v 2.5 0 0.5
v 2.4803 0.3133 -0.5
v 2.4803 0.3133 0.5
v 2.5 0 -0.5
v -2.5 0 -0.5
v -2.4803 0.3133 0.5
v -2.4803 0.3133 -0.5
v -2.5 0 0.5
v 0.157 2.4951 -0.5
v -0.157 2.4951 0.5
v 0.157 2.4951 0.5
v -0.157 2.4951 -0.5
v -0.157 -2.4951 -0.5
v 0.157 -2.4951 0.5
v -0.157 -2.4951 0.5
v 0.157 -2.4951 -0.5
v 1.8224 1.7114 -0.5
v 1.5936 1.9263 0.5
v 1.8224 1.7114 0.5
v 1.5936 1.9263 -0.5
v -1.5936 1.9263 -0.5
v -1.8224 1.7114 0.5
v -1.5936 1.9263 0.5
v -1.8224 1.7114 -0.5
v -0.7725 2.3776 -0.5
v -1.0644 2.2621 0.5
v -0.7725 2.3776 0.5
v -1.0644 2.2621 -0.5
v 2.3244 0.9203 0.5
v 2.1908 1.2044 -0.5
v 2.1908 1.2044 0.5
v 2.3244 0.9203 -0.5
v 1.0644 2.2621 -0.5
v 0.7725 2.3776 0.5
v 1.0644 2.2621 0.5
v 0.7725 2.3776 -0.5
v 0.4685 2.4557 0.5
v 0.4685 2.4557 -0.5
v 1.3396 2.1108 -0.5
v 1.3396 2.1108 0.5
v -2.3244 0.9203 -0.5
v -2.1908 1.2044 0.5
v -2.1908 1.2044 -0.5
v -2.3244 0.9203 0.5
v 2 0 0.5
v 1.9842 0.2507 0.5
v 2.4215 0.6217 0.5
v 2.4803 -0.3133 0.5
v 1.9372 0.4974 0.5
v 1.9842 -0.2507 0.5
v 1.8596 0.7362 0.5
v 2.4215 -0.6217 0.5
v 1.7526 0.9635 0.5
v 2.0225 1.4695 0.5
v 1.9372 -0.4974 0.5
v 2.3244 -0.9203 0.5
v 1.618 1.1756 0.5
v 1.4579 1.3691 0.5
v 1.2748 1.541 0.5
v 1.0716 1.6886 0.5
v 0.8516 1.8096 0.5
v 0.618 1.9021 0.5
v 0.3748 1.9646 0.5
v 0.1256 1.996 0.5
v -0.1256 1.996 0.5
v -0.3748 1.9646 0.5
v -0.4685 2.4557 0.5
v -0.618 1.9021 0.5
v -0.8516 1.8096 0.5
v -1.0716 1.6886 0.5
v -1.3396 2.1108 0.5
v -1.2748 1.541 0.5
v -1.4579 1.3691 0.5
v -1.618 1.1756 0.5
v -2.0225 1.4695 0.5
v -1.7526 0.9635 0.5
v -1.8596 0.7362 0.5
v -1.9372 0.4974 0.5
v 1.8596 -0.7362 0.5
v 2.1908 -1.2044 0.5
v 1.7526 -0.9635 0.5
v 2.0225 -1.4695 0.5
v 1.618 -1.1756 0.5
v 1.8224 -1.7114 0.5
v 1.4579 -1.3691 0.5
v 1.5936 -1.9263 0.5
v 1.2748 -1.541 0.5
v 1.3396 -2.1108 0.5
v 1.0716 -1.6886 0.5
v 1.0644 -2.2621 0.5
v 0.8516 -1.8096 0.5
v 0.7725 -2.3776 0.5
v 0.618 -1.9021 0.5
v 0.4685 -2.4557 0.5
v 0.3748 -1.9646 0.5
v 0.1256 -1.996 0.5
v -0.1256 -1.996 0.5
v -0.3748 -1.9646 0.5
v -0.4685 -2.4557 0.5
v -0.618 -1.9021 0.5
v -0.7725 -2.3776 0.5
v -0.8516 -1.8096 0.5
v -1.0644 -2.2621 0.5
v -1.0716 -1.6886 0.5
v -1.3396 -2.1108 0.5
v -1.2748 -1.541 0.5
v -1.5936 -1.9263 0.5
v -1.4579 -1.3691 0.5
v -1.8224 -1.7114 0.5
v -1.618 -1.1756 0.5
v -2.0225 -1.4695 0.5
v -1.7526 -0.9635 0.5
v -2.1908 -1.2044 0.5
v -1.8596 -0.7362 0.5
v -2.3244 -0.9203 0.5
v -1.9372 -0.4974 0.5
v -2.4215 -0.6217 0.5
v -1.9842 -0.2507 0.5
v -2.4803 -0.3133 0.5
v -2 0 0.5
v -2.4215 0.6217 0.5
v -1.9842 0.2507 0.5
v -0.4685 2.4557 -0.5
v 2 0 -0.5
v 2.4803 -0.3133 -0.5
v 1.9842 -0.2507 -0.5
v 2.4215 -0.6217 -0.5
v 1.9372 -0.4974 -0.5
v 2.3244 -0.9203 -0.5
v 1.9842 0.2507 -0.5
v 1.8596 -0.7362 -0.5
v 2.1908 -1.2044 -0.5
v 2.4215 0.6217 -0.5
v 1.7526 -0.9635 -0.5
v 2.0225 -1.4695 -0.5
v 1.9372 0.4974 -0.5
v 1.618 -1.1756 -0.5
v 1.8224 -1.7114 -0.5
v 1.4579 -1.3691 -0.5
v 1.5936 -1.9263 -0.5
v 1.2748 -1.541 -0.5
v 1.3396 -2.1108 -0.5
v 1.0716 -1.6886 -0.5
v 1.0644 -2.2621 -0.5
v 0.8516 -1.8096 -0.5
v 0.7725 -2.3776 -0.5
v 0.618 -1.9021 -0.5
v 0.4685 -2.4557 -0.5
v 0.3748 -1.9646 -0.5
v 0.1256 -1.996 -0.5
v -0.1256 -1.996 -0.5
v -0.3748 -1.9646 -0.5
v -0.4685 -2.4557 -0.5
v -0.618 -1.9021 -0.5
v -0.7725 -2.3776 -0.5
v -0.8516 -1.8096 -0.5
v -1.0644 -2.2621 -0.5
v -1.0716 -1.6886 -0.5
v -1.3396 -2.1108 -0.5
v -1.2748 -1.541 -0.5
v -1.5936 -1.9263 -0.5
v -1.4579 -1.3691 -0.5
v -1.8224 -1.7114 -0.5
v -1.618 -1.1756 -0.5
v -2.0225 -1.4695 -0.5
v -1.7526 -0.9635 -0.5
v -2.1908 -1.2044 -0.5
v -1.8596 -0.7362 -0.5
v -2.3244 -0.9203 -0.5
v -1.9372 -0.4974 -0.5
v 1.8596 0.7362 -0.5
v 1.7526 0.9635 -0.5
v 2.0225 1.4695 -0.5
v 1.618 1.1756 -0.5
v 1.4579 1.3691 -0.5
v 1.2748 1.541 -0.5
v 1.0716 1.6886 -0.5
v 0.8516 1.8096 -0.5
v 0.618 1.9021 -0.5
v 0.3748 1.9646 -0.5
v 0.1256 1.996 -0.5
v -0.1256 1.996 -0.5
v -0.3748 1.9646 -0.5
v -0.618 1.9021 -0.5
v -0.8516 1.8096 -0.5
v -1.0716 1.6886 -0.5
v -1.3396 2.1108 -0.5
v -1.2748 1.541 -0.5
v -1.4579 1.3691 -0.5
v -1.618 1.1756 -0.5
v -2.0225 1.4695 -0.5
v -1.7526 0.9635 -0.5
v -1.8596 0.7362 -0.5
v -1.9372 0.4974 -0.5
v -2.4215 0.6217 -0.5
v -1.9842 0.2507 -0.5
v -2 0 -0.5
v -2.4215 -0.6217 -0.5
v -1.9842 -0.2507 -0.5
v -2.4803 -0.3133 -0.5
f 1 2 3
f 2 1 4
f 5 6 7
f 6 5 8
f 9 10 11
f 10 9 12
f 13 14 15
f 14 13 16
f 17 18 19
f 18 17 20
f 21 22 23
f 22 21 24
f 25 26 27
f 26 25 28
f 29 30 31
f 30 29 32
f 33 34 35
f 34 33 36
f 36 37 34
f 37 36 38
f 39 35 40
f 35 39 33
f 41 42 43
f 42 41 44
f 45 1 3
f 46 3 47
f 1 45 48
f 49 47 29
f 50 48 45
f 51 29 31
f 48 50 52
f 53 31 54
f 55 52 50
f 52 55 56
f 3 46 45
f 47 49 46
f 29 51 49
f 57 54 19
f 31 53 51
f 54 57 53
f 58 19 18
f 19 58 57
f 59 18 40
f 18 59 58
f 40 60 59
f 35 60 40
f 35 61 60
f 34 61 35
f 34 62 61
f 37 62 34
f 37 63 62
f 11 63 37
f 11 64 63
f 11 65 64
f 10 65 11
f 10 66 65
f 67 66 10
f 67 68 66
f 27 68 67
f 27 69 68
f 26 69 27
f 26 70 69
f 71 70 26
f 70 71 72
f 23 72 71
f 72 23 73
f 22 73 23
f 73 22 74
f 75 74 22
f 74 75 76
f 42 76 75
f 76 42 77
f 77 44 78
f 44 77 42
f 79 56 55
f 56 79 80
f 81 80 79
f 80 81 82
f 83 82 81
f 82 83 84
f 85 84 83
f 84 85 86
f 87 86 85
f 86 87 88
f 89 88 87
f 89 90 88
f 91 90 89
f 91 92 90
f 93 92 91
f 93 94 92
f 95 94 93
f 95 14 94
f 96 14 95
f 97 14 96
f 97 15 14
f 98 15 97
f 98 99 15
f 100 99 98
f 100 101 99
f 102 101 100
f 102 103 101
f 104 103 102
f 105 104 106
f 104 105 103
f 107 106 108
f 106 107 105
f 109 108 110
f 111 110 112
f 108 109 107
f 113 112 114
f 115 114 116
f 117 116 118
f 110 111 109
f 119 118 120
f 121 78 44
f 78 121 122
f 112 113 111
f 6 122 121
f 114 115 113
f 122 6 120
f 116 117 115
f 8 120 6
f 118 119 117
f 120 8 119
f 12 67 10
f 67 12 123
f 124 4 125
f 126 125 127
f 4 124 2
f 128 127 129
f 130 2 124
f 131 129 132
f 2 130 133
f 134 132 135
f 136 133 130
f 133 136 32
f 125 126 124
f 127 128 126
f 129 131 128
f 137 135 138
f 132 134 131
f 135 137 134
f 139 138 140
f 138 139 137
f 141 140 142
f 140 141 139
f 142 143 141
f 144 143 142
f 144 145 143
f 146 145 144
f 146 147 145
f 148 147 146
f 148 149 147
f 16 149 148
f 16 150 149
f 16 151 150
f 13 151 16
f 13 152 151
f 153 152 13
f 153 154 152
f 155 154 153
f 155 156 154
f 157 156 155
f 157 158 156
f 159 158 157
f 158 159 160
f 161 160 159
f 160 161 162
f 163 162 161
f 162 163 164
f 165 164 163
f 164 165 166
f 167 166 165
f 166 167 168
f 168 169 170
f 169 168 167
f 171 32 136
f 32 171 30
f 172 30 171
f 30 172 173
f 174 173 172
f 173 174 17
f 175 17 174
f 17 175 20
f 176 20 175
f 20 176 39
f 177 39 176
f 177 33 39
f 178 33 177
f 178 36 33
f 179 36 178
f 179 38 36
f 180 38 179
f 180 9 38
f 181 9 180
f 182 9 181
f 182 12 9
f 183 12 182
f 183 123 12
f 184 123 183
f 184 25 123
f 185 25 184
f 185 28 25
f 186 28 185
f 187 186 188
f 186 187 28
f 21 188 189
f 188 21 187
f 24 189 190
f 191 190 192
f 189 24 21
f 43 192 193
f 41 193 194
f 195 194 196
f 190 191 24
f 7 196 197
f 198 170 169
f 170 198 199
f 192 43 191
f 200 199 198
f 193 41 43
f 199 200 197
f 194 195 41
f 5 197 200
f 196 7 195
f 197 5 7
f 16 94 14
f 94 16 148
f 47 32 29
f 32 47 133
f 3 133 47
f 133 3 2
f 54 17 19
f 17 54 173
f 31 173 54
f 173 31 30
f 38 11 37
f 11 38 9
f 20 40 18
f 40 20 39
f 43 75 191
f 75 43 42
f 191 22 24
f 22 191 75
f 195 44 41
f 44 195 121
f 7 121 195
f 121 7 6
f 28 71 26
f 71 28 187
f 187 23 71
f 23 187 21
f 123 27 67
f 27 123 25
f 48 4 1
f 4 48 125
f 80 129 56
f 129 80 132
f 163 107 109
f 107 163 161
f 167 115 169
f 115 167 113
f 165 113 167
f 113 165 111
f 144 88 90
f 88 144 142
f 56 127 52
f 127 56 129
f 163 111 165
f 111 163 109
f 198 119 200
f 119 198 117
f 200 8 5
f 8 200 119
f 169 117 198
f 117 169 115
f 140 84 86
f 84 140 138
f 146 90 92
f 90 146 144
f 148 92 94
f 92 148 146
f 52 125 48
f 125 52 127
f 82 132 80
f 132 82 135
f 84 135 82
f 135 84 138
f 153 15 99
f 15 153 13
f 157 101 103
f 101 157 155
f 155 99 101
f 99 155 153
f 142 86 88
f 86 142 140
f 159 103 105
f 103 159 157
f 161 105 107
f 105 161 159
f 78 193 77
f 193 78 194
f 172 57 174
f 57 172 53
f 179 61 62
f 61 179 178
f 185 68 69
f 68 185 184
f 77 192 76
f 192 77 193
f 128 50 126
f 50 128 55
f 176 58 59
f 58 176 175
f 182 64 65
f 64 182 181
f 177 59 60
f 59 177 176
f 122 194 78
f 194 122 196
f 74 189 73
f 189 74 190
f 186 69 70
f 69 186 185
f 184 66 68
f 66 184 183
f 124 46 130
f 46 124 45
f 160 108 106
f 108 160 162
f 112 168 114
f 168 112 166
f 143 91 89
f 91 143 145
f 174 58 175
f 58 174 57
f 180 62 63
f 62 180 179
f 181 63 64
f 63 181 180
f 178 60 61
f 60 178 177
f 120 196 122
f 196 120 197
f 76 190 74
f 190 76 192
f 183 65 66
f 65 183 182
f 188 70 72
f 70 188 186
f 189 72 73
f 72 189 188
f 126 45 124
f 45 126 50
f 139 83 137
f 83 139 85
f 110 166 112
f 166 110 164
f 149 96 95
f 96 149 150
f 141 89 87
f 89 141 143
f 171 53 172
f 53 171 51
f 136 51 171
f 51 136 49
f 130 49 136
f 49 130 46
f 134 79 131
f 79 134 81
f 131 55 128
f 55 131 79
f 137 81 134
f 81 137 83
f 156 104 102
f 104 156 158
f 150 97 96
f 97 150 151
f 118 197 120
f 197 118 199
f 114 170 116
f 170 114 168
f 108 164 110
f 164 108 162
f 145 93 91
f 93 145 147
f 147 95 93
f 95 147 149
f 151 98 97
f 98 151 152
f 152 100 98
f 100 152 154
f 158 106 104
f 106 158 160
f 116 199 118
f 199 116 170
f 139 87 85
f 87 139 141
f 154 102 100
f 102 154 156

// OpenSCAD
$fn = 50;


difference() {
	union() {
		translate(v = [0, 0, -0.5000000000]) {
			cylinder(h = 1, r = 2.5000000000);
		}
	}
	union() {
		translate(v = [0, 0, -100.0000000000]) {
			cylinder(h = 200, r = 2);
		}
	}
}
